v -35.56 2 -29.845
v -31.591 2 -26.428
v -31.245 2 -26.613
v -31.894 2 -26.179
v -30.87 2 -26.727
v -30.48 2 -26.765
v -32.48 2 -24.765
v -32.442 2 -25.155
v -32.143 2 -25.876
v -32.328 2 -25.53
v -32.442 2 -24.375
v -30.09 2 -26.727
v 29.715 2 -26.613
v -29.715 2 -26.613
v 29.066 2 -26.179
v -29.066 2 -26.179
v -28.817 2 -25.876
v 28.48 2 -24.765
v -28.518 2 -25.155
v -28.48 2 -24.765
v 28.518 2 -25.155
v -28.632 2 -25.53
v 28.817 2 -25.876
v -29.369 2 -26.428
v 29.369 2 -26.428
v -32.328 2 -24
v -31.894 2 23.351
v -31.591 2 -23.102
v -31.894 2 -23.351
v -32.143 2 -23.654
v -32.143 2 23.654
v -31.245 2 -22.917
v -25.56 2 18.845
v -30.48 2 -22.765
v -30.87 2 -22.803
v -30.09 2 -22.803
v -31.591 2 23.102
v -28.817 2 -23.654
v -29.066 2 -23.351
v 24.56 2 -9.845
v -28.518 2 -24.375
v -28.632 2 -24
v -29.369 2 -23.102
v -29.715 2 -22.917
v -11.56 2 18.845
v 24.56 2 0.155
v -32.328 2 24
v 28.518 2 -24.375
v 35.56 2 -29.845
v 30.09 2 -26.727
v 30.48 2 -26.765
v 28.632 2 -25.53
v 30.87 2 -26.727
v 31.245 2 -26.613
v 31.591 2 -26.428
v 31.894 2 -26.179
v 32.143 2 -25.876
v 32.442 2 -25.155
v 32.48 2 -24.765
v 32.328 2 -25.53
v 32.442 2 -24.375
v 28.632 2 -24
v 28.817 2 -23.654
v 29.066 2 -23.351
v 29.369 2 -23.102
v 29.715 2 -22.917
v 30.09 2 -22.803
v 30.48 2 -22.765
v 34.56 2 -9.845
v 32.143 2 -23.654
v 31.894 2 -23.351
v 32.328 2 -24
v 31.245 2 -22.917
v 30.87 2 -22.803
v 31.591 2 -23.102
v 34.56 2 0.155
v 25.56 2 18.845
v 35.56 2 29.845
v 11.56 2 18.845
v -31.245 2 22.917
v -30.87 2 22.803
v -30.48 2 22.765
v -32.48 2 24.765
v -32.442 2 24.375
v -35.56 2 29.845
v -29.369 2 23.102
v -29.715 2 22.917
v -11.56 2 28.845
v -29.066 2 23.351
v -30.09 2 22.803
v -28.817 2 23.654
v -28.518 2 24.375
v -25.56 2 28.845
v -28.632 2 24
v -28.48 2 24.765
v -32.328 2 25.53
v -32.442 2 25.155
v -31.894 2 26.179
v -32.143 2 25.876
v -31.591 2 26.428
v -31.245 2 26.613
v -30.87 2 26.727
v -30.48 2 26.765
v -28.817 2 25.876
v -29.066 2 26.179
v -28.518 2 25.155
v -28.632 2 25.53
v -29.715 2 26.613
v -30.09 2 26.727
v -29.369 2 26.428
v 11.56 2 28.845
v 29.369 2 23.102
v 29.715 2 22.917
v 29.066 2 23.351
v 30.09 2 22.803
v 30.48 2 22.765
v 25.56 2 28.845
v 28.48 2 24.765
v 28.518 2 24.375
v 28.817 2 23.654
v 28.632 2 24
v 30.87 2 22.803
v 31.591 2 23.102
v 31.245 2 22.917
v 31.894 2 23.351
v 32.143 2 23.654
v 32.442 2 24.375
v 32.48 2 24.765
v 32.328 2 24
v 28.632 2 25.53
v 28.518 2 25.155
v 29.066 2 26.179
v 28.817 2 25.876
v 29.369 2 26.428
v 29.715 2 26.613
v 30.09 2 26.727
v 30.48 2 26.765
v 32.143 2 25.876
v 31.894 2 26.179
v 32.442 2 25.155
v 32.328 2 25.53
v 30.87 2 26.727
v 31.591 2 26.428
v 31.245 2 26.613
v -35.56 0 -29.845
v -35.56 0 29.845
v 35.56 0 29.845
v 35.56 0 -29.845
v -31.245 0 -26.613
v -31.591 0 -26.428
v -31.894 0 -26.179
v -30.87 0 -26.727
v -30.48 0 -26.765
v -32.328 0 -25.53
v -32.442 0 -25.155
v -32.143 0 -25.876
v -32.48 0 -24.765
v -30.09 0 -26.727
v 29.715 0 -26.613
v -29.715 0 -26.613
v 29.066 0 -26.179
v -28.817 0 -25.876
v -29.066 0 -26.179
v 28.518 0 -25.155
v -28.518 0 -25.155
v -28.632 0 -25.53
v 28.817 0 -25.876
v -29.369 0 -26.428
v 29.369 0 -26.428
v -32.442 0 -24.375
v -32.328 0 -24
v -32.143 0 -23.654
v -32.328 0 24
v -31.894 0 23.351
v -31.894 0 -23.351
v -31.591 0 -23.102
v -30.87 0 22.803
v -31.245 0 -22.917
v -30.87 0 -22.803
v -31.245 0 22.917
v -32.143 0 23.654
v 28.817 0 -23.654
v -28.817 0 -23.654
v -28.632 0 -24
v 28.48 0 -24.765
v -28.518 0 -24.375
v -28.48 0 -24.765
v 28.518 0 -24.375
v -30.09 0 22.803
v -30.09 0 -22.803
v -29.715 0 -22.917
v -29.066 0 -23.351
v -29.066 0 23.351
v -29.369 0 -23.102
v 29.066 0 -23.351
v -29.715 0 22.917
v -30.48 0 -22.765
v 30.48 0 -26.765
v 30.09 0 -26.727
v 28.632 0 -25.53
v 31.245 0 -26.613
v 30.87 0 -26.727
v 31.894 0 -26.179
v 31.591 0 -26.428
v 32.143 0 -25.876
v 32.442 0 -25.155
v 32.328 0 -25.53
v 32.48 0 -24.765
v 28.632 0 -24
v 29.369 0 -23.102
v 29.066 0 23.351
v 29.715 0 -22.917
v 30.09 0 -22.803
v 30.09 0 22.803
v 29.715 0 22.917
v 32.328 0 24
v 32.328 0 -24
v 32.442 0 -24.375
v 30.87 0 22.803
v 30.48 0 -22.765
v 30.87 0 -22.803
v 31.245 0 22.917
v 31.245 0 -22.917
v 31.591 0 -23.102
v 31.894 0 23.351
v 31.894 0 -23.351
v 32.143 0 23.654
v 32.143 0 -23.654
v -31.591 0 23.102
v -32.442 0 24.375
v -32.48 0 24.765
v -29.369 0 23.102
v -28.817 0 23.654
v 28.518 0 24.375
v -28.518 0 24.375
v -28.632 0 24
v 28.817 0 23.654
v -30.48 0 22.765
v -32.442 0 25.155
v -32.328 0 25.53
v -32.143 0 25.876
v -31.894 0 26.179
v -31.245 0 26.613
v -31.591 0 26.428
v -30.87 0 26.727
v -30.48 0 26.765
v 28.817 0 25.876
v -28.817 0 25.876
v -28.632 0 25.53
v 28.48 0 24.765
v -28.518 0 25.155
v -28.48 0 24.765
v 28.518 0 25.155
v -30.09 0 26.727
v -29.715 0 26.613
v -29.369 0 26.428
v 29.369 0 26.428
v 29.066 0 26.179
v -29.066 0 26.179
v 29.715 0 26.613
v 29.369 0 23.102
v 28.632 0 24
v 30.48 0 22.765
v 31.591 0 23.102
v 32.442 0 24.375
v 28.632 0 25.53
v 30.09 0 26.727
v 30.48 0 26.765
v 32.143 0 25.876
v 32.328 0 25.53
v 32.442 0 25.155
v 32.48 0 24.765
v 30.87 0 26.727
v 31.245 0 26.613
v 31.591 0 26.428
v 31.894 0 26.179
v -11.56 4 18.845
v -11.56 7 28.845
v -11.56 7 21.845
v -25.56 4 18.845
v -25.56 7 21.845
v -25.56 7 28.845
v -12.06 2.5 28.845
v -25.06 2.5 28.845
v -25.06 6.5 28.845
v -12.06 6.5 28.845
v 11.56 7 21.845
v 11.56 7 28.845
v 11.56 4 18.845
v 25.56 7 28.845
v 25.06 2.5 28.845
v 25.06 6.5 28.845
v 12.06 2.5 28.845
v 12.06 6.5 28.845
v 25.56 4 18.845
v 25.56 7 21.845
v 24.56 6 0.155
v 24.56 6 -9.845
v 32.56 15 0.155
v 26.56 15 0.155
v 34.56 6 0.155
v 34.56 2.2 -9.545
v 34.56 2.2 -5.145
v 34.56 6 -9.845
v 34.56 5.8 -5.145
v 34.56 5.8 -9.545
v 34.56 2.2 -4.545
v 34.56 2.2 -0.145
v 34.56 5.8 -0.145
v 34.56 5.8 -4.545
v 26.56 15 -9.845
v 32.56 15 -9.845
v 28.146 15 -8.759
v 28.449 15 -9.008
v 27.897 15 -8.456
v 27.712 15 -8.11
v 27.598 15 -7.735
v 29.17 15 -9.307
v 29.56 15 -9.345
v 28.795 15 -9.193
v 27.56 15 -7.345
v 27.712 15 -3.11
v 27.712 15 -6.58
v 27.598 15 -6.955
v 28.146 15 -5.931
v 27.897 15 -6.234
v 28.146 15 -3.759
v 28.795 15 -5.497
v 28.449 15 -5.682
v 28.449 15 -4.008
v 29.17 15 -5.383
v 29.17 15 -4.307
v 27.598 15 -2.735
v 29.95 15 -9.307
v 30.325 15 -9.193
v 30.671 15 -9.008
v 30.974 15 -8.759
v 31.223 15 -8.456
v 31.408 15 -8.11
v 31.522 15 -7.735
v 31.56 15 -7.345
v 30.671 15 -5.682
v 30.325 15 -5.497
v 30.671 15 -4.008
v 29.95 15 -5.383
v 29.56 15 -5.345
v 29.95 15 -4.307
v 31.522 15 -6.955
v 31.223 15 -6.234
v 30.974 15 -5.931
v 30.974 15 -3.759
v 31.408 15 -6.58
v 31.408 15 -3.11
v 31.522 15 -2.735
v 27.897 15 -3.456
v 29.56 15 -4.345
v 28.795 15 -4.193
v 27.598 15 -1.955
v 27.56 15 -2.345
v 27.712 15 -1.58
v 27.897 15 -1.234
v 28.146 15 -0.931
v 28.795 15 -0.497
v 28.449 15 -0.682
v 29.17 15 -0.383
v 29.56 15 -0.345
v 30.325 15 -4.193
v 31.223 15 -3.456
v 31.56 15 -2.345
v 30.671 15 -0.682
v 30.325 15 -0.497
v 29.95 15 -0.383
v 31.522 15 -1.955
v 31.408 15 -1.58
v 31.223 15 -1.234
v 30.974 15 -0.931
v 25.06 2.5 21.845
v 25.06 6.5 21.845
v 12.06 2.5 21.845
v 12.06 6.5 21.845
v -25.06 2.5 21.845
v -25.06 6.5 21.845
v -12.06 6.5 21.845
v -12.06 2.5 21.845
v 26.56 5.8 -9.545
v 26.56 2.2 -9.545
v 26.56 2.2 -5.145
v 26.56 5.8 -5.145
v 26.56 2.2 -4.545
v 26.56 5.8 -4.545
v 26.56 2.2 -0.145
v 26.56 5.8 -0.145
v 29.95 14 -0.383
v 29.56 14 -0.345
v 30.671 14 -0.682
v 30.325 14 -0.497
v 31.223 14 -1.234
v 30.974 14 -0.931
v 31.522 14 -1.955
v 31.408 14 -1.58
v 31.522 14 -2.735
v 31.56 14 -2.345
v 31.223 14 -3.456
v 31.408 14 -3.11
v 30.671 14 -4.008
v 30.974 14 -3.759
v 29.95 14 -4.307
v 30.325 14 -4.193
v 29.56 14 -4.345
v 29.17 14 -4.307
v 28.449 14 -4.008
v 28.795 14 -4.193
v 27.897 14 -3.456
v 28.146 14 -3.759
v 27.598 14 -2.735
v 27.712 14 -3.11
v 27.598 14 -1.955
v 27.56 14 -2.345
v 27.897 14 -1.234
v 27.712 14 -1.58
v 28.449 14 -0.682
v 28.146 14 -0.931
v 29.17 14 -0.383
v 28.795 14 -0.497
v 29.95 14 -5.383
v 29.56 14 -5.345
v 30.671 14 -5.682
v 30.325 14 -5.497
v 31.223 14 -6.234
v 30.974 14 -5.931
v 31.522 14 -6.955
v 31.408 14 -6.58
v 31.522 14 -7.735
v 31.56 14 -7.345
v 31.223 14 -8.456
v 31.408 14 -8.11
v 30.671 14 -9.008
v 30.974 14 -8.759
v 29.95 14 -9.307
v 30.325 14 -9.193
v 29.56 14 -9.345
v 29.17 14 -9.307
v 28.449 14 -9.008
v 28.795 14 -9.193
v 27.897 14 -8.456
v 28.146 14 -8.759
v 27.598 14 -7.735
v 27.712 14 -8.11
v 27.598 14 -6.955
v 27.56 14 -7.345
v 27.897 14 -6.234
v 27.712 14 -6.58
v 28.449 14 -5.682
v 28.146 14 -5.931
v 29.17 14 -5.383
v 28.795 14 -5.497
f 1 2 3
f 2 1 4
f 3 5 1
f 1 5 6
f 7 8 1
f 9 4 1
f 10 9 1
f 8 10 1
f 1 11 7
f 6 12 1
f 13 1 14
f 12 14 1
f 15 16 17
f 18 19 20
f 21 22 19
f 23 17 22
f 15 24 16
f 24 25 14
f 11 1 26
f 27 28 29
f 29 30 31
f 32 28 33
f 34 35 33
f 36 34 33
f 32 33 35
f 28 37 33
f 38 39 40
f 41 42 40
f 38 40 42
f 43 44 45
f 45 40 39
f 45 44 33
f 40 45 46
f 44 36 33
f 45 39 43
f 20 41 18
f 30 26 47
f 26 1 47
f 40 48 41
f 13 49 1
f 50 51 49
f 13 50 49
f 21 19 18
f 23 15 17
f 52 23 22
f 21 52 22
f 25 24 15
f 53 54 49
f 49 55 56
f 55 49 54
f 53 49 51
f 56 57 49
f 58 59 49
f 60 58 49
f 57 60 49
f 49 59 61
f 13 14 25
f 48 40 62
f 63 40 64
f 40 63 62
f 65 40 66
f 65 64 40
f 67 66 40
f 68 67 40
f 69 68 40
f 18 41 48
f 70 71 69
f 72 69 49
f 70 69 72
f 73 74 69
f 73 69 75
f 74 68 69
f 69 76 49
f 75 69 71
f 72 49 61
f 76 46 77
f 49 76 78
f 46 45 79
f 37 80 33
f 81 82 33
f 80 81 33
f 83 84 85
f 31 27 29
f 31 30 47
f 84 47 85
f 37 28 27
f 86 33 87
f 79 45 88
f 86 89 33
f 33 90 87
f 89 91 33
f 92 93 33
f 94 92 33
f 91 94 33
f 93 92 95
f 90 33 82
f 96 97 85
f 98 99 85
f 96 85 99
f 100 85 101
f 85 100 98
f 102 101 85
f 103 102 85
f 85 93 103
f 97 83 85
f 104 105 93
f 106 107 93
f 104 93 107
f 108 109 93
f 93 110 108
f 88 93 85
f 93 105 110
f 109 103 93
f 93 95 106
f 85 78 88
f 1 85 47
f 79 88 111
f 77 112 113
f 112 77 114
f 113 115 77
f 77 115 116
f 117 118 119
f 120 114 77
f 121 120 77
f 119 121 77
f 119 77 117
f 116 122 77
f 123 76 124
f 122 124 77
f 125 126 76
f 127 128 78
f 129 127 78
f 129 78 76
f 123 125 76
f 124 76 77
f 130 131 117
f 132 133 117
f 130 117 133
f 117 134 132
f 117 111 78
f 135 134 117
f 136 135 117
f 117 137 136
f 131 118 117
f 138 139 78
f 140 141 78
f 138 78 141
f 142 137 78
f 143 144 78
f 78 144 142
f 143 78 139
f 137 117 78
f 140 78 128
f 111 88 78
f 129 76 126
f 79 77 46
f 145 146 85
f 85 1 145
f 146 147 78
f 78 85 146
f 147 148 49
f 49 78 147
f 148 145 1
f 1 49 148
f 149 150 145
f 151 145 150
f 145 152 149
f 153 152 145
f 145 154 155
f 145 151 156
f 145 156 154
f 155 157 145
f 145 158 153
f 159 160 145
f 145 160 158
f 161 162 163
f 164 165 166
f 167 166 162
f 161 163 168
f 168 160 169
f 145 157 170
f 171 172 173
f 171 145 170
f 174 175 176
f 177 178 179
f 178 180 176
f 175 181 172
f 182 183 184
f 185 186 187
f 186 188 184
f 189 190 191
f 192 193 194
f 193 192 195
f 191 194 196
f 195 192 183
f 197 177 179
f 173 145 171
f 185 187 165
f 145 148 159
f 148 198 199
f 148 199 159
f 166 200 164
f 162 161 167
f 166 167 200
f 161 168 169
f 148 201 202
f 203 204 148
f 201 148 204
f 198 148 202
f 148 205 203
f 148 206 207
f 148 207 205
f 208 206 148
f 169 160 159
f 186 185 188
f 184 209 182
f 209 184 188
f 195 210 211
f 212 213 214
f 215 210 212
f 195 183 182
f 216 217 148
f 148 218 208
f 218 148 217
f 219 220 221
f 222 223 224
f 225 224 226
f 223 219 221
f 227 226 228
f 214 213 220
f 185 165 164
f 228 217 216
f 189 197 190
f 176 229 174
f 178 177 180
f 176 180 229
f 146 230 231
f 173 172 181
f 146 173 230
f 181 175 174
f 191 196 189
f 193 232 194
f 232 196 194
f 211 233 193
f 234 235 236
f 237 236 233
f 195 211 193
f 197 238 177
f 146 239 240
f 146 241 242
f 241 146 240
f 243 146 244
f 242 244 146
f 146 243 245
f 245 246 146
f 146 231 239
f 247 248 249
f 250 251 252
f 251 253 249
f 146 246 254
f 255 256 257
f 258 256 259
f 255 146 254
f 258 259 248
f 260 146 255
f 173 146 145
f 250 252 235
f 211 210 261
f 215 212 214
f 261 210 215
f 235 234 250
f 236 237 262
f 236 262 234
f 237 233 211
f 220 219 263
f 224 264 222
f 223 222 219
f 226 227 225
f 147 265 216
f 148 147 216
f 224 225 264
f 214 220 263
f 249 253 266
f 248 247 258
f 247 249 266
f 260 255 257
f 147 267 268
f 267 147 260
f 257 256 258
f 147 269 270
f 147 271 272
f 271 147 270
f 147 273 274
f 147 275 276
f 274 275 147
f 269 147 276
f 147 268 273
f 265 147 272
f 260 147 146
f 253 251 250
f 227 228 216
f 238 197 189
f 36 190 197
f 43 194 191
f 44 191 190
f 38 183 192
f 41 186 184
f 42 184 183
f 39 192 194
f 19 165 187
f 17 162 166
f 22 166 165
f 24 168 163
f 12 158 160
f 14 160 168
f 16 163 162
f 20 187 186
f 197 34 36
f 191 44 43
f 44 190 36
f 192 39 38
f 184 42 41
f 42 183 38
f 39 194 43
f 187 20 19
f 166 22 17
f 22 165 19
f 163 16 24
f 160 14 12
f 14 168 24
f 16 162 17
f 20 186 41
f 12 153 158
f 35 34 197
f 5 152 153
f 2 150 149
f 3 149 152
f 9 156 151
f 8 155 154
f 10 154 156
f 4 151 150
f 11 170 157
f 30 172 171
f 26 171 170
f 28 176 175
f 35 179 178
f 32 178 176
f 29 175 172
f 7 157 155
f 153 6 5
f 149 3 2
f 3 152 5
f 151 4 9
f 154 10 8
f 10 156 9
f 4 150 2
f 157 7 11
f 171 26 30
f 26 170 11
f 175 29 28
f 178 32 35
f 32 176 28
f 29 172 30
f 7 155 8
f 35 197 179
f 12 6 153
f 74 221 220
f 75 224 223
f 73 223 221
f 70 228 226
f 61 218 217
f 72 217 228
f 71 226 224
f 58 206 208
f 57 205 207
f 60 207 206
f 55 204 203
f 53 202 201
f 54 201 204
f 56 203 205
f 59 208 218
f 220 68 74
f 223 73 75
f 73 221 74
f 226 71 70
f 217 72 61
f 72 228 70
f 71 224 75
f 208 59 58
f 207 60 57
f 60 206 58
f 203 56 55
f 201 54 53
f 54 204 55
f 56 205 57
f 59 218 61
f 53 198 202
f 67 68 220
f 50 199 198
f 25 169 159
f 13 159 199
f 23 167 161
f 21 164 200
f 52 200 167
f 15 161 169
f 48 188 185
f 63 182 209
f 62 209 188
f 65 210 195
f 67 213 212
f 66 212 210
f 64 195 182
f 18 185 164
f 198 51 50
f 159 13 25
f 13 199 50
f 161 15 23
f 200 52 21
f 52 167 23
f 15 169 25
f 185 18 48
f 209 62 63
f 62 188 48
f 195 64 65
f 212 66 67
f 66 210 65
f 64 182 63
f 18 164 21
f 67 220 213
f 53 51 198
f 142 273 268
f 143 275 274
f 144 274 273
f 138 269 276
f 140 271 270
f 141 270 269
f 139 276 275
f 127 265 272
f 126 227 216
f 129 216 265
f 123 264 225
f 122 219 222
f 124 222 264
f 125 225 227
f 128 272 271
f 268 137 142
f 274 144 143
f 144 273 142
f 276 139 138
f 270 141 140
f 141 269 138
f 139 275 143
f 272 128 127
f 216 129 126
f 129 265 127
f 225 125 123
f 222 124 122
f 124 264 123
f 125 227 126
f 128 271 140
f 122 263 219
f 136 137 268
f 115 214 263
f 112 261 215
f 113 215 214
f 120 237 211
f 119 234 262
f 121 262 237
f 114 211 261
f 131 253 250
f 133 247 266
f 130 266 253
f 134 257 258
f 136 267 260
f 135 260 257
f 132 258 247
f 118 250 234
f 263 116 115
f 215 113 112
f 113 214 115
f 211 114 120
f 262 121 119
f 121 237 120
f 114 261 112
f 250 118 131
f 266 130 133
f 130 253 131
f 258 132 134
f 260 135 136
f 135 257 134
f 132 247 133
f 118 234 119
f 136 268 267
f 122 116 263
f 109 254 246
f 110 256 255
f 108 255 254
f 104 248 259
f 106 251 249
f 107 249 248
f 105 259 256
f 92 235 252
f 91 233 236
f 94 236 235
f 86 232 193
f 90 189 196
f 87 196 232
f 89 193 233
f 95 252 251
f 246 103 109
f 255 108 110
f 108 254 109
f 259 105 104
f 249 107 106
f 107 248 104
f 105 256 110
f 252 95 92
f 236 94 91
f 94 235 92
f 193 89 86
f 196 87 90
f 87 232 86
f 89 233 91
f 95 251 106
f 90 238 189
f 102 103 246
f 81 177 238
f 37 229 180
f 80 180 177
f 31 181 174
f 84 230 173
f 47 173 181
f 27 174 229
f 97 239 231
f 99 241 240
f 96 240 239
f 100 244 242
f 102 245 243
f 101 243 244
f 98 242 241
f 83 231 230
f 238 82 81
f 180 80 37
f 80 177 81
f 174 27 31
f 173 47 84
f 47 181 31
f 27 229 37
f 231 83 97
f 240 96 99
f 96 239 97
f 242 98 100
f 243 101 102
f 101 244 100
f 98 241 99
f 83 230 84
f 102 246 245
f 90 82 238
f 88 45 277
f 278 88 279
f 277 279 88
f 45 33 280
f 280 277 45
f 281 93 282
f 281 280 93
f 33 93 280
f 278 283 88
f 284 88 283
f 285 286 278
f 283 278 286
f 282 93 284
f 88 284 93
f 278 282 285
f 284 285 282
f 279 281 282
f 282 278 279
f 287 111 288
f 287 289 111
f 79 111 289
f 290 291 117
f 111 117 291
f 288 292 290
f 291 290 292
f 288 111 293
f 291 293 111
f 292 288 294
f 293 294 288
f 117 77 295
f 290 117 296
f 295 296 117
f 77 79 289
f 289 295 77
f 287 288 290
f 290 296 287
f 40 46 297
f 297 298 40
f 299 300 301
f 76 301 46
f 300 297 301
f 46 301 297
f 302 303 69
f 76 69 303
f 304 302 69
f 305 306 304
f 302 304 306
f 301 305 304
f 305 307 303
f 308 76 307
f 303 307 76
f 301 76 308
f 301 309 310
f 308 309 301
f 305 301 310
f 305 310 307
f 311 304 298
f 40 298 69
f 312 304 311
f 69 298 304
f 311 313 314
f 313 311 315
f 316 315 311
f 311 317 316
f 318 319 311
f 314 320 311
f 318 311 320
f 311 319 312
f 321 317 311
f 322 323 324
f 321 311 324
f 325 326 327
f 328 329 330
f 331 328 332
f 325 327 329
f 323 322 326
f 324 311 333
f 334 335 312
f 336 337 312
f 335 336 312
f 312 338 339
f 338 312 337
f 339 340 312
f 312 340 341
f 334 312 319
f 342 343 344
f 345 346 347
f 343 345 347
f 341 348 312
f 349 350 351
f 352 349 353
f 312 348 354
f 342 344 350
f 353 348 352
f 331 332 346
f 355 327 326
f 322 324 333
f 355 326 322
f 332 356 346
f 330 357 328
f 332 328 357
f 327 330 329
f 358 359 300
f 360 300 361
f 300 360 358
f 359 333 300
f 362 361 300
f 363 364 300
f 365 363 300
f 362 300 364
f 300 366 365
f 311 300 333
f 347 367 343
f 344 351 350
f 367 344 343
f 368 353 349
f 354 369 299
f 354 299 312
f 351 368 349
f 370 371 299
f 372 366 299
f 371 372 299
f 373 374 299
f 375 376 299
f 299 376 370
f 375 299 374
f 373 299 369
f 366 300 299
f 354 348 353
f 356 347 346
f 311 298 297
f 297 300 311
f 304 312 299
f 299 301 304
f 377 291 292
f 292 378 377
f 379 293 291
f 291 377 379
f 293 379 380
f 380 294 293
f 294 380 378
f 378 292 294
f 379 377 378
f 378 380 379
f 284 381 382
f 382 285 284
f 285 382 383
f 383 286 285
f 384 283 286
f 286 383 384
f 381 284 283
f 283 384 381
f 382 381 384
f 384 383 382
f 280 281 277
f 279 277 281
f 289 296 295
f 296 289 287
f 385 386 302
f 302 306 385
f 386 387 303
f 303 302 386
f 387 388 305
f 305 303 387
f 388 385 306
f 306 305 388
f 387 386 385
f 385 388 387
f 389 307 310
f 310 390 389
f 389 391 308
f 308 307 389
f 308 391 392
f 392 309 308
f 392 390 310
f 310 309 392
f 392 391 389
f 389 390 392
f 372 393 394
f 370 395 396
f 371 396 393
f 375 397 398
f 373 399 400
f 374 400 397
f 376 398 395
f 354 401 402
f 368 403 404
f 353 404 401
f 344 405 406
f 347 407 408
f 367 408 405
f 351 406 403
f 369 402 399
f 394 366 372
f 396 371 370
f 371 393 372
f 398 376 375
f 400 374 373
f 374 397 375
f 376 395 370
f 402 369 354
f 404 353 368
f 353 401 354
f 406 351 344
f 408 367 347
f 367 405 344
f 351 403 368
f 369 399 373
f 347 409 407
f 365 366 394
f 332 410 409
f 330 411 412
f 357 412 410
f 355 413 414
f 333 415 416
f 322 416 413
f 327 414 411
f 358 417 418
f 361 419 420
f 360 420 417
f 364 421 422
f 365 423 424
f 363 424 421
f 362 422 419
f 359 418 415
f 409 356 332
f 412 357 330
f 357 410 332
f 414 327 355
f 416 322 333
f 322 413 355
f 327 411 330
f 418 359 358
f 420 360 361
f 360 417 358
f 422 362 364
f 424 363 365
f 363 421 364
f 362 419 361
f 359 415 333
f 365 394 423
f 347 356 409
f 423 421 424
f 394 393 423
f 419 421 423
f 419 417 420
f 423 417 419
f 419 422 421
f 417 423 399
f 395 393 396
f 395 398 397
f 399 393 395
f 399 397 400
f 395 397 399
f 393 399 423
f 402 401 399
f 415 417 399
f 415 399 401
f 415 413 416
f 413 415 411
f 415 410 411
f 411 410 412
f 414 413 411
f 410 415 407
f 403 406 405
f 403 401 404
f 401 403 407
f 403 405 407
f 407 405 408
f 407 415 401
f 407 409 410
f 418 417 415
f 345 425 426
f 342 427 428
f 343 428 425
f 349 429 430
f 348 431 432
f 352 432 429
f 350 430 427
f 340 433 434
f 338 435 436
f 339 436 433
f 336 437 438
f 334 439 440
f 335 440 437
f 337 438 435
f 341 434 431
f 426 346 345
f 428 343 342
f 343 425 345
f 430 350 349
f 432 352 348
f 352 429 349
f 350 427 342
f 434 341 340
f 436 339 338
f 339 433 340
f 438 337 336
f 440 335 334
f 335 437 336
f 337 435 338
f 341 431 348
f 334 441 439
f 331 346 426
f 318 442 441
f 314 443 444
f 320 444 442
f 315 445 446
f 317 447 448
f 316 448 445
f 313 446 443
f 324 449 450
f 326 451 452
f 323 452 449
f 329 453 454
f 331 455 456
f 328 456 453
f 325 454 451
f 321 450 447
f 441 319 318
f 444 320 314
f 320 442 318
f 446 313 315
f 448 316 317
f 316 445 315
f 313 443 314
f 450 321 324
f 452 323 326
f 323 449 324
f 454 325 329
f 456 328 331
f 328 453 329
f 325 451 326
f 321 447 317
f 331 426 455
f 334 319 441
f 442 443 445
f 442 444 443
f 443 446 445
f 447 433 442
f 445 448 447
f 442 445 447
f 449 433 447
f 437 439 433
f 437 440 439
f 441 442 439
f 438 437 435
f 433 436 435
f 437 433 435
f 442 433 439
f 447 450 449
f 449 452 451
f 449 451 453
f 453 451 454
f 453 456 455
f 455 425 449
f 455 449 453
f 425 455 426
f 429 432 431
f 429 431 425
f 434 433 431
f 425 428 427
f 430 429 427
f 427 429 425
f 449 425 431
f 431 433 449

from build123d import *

# Parameters (mm, degrees)
SKETCH1_W           = 71.12
SKETCH1_H           = 59.69
BOSS_EXTRUDE1_DEPTH = 2
SKETCH2_R           = 2
CUT_EXTRUDE1_DEPTH  = 2
SKETCH3_W           = 14
SKETCH3_H           = 10
BOSS_EXTRUDE2_DEPTH = 5
SKETCH4_W           = 10
SKETCH4_H           = 10
BOSS_EXTRUDE3_DEPTH = 13
CUT_EXTRUDE2_DEPTH  = 49.882651319
SKETCH8_W           = 13
SKETCH8_H           = 4
CUT_EXTRUDE3_DEPTH  = 7
CHAMFER1_SIZE       = 3
SKETCH9_W           = 4.4
SKETCH9_H           = 3.6
CUT_EXTRUDE4_DEPTH  = 8
SKETCH10_R          = 2
CUT_EXTRUDE5_DEPTH  = 1


with BuildPart() as part:
    # Sketch1 → Boss-Extrude1 (new body)
    with BuildSketch(Plane(origin=(0, 0, 0), x_dir=(1, 0, 0), z_dir=(0, 1, 0))):
        Rectangle(SKETCH1_W, SKETCH1_H)
    extrude(amount=BOSS_EXTRUDE1_DEPTH)

    # Sketch2 → Cut-Extrude1 (cut)
    with BuildSketch(Plane(origin=(0, 2, 0), x_dir=(1, 0, 0), z_dir=(0, 1, 0))):
        with Locations(Location((-30.48, 24.765, 0), (0, 0, 270))):
            Circle(SKETCH2_R)
        with Locations(Location((30.48, 24.765, 0), (0, 0, 270))):
            Circle(SKETCH2_R)
        with Locations(Location((30.48, -24.765, 0), (0, 0, 270))):
            Circle(SKETCH2_R)
        with Locations(Location((-30.48, -24.765, 0), (0, 0, 270))):
            Circle(SKETCH2_R)
    extrude(amount=-CUT_EXTRUDE1_DEPTH, mode=Mode.SUBTRACT)

    # Sketch3 → Boss-Extrude2 (add)
    with BuildSketch(Plane(origin=(0, 2, 0), x_dir=(1, 0, 0), z_dir=(0, 1, 0))):
        with Locations((-18.56, -23.845)):
            Rectangle(SKETCH3_W, SKETCH3_H)
        with Locations((18.56, -23.845)):
            Rectangle(SKETCH3_W, SKETCH3_H)
    extrude(amount=BOSS_EXTRUDE2_DEPTH)

    # Sketch4 → Boss-Extrude3 (add)
    with BuildSketch(Plane(origin=(0, 2, 0), x_dir=(1, 0, 0), z_dir=(0, 1, 0))):
        with Locations((29.56, 4.845)):
            Rectangle(SKETCH4_W, SKETCH4_H)
    extrude(amount=BOSS_EXTRUDE3_DEPTH)

    # Sketch7 → Cut-Extrude2 (cut, through all)
    with BuildSketch(Plane.XY.offset(0.155)):
        Polygon((26.56, 15), (24.56, 6), (24.56, 15), align=None)
        Polygon((34.56, 6), (32.56, 15), (34.56, 15), align=None)
    extrude(amount=-CUT_EXTRUDE2_DEPTH, mode=Mode.SUBTRACT)

    # Sketch8 → Cut-Extrude3 (cut)
    with BuildSketch(Plane.XY.offset(28.845)):
        with Locations((-18.56, 4.5)):
            Rectangle(SKETCH8_W, SKETCH8_H)
        with Locations((18.56, 4.5)):
            Rectangle(SKETCH8_W, SKETCH8_H)
    extrude(amount=-CUT_EXTRUDE3_DEPTH, mode=Mode.SUBTRACT)

    # Chamfer1
    chamfer1_edges = [part.edges().sort_by_distance(p)[0] for p in [
        (-18.56, 7, 18.845),
        (18.56, 7, 18.845),
    ]]
    chamfer(chamfer1_edges, length=CHAMFER1_SIZE)

    # Sketch9 → Cut-Extrude4 (cut)
    with BuildSketch(Plane(origin=(34.56, 0, 0), x_dir=(0, 0, -1), z_dir=(1, 0, 0))):
        with Locations((7.345, 4)):
            Rectangle(SKETCH9_W, SKETCH9_H)
        with Locations((2.345, 4)):
            Rectangle(SKETCH9_W, SKETCH9_H)
    extrude(amount=-CUT_EXTRUDE4_DEPTH, mode=Mode.SUBTRACT)

    # Sketch10 → Cut-Extrude5 (cut)
    with BuildSketch(Plane(origin=(0, 15, 0), x_dir=(1, 0, 0), z_dir=(0, 1, 0))):
        with Locations(Location((29.56, 7.345, 0), (0, 0, 270))):
            Circle(SKETCH10_R)
        with Locations(Location((29.56, 2.345, 0), (0, 0, 90))):
            Circle(SKETCH10_R)
    extrude(amount=-CUT_EXTRUDE5_DEPTH, mode=Mode.SUBTRACT)


solid = part.part
